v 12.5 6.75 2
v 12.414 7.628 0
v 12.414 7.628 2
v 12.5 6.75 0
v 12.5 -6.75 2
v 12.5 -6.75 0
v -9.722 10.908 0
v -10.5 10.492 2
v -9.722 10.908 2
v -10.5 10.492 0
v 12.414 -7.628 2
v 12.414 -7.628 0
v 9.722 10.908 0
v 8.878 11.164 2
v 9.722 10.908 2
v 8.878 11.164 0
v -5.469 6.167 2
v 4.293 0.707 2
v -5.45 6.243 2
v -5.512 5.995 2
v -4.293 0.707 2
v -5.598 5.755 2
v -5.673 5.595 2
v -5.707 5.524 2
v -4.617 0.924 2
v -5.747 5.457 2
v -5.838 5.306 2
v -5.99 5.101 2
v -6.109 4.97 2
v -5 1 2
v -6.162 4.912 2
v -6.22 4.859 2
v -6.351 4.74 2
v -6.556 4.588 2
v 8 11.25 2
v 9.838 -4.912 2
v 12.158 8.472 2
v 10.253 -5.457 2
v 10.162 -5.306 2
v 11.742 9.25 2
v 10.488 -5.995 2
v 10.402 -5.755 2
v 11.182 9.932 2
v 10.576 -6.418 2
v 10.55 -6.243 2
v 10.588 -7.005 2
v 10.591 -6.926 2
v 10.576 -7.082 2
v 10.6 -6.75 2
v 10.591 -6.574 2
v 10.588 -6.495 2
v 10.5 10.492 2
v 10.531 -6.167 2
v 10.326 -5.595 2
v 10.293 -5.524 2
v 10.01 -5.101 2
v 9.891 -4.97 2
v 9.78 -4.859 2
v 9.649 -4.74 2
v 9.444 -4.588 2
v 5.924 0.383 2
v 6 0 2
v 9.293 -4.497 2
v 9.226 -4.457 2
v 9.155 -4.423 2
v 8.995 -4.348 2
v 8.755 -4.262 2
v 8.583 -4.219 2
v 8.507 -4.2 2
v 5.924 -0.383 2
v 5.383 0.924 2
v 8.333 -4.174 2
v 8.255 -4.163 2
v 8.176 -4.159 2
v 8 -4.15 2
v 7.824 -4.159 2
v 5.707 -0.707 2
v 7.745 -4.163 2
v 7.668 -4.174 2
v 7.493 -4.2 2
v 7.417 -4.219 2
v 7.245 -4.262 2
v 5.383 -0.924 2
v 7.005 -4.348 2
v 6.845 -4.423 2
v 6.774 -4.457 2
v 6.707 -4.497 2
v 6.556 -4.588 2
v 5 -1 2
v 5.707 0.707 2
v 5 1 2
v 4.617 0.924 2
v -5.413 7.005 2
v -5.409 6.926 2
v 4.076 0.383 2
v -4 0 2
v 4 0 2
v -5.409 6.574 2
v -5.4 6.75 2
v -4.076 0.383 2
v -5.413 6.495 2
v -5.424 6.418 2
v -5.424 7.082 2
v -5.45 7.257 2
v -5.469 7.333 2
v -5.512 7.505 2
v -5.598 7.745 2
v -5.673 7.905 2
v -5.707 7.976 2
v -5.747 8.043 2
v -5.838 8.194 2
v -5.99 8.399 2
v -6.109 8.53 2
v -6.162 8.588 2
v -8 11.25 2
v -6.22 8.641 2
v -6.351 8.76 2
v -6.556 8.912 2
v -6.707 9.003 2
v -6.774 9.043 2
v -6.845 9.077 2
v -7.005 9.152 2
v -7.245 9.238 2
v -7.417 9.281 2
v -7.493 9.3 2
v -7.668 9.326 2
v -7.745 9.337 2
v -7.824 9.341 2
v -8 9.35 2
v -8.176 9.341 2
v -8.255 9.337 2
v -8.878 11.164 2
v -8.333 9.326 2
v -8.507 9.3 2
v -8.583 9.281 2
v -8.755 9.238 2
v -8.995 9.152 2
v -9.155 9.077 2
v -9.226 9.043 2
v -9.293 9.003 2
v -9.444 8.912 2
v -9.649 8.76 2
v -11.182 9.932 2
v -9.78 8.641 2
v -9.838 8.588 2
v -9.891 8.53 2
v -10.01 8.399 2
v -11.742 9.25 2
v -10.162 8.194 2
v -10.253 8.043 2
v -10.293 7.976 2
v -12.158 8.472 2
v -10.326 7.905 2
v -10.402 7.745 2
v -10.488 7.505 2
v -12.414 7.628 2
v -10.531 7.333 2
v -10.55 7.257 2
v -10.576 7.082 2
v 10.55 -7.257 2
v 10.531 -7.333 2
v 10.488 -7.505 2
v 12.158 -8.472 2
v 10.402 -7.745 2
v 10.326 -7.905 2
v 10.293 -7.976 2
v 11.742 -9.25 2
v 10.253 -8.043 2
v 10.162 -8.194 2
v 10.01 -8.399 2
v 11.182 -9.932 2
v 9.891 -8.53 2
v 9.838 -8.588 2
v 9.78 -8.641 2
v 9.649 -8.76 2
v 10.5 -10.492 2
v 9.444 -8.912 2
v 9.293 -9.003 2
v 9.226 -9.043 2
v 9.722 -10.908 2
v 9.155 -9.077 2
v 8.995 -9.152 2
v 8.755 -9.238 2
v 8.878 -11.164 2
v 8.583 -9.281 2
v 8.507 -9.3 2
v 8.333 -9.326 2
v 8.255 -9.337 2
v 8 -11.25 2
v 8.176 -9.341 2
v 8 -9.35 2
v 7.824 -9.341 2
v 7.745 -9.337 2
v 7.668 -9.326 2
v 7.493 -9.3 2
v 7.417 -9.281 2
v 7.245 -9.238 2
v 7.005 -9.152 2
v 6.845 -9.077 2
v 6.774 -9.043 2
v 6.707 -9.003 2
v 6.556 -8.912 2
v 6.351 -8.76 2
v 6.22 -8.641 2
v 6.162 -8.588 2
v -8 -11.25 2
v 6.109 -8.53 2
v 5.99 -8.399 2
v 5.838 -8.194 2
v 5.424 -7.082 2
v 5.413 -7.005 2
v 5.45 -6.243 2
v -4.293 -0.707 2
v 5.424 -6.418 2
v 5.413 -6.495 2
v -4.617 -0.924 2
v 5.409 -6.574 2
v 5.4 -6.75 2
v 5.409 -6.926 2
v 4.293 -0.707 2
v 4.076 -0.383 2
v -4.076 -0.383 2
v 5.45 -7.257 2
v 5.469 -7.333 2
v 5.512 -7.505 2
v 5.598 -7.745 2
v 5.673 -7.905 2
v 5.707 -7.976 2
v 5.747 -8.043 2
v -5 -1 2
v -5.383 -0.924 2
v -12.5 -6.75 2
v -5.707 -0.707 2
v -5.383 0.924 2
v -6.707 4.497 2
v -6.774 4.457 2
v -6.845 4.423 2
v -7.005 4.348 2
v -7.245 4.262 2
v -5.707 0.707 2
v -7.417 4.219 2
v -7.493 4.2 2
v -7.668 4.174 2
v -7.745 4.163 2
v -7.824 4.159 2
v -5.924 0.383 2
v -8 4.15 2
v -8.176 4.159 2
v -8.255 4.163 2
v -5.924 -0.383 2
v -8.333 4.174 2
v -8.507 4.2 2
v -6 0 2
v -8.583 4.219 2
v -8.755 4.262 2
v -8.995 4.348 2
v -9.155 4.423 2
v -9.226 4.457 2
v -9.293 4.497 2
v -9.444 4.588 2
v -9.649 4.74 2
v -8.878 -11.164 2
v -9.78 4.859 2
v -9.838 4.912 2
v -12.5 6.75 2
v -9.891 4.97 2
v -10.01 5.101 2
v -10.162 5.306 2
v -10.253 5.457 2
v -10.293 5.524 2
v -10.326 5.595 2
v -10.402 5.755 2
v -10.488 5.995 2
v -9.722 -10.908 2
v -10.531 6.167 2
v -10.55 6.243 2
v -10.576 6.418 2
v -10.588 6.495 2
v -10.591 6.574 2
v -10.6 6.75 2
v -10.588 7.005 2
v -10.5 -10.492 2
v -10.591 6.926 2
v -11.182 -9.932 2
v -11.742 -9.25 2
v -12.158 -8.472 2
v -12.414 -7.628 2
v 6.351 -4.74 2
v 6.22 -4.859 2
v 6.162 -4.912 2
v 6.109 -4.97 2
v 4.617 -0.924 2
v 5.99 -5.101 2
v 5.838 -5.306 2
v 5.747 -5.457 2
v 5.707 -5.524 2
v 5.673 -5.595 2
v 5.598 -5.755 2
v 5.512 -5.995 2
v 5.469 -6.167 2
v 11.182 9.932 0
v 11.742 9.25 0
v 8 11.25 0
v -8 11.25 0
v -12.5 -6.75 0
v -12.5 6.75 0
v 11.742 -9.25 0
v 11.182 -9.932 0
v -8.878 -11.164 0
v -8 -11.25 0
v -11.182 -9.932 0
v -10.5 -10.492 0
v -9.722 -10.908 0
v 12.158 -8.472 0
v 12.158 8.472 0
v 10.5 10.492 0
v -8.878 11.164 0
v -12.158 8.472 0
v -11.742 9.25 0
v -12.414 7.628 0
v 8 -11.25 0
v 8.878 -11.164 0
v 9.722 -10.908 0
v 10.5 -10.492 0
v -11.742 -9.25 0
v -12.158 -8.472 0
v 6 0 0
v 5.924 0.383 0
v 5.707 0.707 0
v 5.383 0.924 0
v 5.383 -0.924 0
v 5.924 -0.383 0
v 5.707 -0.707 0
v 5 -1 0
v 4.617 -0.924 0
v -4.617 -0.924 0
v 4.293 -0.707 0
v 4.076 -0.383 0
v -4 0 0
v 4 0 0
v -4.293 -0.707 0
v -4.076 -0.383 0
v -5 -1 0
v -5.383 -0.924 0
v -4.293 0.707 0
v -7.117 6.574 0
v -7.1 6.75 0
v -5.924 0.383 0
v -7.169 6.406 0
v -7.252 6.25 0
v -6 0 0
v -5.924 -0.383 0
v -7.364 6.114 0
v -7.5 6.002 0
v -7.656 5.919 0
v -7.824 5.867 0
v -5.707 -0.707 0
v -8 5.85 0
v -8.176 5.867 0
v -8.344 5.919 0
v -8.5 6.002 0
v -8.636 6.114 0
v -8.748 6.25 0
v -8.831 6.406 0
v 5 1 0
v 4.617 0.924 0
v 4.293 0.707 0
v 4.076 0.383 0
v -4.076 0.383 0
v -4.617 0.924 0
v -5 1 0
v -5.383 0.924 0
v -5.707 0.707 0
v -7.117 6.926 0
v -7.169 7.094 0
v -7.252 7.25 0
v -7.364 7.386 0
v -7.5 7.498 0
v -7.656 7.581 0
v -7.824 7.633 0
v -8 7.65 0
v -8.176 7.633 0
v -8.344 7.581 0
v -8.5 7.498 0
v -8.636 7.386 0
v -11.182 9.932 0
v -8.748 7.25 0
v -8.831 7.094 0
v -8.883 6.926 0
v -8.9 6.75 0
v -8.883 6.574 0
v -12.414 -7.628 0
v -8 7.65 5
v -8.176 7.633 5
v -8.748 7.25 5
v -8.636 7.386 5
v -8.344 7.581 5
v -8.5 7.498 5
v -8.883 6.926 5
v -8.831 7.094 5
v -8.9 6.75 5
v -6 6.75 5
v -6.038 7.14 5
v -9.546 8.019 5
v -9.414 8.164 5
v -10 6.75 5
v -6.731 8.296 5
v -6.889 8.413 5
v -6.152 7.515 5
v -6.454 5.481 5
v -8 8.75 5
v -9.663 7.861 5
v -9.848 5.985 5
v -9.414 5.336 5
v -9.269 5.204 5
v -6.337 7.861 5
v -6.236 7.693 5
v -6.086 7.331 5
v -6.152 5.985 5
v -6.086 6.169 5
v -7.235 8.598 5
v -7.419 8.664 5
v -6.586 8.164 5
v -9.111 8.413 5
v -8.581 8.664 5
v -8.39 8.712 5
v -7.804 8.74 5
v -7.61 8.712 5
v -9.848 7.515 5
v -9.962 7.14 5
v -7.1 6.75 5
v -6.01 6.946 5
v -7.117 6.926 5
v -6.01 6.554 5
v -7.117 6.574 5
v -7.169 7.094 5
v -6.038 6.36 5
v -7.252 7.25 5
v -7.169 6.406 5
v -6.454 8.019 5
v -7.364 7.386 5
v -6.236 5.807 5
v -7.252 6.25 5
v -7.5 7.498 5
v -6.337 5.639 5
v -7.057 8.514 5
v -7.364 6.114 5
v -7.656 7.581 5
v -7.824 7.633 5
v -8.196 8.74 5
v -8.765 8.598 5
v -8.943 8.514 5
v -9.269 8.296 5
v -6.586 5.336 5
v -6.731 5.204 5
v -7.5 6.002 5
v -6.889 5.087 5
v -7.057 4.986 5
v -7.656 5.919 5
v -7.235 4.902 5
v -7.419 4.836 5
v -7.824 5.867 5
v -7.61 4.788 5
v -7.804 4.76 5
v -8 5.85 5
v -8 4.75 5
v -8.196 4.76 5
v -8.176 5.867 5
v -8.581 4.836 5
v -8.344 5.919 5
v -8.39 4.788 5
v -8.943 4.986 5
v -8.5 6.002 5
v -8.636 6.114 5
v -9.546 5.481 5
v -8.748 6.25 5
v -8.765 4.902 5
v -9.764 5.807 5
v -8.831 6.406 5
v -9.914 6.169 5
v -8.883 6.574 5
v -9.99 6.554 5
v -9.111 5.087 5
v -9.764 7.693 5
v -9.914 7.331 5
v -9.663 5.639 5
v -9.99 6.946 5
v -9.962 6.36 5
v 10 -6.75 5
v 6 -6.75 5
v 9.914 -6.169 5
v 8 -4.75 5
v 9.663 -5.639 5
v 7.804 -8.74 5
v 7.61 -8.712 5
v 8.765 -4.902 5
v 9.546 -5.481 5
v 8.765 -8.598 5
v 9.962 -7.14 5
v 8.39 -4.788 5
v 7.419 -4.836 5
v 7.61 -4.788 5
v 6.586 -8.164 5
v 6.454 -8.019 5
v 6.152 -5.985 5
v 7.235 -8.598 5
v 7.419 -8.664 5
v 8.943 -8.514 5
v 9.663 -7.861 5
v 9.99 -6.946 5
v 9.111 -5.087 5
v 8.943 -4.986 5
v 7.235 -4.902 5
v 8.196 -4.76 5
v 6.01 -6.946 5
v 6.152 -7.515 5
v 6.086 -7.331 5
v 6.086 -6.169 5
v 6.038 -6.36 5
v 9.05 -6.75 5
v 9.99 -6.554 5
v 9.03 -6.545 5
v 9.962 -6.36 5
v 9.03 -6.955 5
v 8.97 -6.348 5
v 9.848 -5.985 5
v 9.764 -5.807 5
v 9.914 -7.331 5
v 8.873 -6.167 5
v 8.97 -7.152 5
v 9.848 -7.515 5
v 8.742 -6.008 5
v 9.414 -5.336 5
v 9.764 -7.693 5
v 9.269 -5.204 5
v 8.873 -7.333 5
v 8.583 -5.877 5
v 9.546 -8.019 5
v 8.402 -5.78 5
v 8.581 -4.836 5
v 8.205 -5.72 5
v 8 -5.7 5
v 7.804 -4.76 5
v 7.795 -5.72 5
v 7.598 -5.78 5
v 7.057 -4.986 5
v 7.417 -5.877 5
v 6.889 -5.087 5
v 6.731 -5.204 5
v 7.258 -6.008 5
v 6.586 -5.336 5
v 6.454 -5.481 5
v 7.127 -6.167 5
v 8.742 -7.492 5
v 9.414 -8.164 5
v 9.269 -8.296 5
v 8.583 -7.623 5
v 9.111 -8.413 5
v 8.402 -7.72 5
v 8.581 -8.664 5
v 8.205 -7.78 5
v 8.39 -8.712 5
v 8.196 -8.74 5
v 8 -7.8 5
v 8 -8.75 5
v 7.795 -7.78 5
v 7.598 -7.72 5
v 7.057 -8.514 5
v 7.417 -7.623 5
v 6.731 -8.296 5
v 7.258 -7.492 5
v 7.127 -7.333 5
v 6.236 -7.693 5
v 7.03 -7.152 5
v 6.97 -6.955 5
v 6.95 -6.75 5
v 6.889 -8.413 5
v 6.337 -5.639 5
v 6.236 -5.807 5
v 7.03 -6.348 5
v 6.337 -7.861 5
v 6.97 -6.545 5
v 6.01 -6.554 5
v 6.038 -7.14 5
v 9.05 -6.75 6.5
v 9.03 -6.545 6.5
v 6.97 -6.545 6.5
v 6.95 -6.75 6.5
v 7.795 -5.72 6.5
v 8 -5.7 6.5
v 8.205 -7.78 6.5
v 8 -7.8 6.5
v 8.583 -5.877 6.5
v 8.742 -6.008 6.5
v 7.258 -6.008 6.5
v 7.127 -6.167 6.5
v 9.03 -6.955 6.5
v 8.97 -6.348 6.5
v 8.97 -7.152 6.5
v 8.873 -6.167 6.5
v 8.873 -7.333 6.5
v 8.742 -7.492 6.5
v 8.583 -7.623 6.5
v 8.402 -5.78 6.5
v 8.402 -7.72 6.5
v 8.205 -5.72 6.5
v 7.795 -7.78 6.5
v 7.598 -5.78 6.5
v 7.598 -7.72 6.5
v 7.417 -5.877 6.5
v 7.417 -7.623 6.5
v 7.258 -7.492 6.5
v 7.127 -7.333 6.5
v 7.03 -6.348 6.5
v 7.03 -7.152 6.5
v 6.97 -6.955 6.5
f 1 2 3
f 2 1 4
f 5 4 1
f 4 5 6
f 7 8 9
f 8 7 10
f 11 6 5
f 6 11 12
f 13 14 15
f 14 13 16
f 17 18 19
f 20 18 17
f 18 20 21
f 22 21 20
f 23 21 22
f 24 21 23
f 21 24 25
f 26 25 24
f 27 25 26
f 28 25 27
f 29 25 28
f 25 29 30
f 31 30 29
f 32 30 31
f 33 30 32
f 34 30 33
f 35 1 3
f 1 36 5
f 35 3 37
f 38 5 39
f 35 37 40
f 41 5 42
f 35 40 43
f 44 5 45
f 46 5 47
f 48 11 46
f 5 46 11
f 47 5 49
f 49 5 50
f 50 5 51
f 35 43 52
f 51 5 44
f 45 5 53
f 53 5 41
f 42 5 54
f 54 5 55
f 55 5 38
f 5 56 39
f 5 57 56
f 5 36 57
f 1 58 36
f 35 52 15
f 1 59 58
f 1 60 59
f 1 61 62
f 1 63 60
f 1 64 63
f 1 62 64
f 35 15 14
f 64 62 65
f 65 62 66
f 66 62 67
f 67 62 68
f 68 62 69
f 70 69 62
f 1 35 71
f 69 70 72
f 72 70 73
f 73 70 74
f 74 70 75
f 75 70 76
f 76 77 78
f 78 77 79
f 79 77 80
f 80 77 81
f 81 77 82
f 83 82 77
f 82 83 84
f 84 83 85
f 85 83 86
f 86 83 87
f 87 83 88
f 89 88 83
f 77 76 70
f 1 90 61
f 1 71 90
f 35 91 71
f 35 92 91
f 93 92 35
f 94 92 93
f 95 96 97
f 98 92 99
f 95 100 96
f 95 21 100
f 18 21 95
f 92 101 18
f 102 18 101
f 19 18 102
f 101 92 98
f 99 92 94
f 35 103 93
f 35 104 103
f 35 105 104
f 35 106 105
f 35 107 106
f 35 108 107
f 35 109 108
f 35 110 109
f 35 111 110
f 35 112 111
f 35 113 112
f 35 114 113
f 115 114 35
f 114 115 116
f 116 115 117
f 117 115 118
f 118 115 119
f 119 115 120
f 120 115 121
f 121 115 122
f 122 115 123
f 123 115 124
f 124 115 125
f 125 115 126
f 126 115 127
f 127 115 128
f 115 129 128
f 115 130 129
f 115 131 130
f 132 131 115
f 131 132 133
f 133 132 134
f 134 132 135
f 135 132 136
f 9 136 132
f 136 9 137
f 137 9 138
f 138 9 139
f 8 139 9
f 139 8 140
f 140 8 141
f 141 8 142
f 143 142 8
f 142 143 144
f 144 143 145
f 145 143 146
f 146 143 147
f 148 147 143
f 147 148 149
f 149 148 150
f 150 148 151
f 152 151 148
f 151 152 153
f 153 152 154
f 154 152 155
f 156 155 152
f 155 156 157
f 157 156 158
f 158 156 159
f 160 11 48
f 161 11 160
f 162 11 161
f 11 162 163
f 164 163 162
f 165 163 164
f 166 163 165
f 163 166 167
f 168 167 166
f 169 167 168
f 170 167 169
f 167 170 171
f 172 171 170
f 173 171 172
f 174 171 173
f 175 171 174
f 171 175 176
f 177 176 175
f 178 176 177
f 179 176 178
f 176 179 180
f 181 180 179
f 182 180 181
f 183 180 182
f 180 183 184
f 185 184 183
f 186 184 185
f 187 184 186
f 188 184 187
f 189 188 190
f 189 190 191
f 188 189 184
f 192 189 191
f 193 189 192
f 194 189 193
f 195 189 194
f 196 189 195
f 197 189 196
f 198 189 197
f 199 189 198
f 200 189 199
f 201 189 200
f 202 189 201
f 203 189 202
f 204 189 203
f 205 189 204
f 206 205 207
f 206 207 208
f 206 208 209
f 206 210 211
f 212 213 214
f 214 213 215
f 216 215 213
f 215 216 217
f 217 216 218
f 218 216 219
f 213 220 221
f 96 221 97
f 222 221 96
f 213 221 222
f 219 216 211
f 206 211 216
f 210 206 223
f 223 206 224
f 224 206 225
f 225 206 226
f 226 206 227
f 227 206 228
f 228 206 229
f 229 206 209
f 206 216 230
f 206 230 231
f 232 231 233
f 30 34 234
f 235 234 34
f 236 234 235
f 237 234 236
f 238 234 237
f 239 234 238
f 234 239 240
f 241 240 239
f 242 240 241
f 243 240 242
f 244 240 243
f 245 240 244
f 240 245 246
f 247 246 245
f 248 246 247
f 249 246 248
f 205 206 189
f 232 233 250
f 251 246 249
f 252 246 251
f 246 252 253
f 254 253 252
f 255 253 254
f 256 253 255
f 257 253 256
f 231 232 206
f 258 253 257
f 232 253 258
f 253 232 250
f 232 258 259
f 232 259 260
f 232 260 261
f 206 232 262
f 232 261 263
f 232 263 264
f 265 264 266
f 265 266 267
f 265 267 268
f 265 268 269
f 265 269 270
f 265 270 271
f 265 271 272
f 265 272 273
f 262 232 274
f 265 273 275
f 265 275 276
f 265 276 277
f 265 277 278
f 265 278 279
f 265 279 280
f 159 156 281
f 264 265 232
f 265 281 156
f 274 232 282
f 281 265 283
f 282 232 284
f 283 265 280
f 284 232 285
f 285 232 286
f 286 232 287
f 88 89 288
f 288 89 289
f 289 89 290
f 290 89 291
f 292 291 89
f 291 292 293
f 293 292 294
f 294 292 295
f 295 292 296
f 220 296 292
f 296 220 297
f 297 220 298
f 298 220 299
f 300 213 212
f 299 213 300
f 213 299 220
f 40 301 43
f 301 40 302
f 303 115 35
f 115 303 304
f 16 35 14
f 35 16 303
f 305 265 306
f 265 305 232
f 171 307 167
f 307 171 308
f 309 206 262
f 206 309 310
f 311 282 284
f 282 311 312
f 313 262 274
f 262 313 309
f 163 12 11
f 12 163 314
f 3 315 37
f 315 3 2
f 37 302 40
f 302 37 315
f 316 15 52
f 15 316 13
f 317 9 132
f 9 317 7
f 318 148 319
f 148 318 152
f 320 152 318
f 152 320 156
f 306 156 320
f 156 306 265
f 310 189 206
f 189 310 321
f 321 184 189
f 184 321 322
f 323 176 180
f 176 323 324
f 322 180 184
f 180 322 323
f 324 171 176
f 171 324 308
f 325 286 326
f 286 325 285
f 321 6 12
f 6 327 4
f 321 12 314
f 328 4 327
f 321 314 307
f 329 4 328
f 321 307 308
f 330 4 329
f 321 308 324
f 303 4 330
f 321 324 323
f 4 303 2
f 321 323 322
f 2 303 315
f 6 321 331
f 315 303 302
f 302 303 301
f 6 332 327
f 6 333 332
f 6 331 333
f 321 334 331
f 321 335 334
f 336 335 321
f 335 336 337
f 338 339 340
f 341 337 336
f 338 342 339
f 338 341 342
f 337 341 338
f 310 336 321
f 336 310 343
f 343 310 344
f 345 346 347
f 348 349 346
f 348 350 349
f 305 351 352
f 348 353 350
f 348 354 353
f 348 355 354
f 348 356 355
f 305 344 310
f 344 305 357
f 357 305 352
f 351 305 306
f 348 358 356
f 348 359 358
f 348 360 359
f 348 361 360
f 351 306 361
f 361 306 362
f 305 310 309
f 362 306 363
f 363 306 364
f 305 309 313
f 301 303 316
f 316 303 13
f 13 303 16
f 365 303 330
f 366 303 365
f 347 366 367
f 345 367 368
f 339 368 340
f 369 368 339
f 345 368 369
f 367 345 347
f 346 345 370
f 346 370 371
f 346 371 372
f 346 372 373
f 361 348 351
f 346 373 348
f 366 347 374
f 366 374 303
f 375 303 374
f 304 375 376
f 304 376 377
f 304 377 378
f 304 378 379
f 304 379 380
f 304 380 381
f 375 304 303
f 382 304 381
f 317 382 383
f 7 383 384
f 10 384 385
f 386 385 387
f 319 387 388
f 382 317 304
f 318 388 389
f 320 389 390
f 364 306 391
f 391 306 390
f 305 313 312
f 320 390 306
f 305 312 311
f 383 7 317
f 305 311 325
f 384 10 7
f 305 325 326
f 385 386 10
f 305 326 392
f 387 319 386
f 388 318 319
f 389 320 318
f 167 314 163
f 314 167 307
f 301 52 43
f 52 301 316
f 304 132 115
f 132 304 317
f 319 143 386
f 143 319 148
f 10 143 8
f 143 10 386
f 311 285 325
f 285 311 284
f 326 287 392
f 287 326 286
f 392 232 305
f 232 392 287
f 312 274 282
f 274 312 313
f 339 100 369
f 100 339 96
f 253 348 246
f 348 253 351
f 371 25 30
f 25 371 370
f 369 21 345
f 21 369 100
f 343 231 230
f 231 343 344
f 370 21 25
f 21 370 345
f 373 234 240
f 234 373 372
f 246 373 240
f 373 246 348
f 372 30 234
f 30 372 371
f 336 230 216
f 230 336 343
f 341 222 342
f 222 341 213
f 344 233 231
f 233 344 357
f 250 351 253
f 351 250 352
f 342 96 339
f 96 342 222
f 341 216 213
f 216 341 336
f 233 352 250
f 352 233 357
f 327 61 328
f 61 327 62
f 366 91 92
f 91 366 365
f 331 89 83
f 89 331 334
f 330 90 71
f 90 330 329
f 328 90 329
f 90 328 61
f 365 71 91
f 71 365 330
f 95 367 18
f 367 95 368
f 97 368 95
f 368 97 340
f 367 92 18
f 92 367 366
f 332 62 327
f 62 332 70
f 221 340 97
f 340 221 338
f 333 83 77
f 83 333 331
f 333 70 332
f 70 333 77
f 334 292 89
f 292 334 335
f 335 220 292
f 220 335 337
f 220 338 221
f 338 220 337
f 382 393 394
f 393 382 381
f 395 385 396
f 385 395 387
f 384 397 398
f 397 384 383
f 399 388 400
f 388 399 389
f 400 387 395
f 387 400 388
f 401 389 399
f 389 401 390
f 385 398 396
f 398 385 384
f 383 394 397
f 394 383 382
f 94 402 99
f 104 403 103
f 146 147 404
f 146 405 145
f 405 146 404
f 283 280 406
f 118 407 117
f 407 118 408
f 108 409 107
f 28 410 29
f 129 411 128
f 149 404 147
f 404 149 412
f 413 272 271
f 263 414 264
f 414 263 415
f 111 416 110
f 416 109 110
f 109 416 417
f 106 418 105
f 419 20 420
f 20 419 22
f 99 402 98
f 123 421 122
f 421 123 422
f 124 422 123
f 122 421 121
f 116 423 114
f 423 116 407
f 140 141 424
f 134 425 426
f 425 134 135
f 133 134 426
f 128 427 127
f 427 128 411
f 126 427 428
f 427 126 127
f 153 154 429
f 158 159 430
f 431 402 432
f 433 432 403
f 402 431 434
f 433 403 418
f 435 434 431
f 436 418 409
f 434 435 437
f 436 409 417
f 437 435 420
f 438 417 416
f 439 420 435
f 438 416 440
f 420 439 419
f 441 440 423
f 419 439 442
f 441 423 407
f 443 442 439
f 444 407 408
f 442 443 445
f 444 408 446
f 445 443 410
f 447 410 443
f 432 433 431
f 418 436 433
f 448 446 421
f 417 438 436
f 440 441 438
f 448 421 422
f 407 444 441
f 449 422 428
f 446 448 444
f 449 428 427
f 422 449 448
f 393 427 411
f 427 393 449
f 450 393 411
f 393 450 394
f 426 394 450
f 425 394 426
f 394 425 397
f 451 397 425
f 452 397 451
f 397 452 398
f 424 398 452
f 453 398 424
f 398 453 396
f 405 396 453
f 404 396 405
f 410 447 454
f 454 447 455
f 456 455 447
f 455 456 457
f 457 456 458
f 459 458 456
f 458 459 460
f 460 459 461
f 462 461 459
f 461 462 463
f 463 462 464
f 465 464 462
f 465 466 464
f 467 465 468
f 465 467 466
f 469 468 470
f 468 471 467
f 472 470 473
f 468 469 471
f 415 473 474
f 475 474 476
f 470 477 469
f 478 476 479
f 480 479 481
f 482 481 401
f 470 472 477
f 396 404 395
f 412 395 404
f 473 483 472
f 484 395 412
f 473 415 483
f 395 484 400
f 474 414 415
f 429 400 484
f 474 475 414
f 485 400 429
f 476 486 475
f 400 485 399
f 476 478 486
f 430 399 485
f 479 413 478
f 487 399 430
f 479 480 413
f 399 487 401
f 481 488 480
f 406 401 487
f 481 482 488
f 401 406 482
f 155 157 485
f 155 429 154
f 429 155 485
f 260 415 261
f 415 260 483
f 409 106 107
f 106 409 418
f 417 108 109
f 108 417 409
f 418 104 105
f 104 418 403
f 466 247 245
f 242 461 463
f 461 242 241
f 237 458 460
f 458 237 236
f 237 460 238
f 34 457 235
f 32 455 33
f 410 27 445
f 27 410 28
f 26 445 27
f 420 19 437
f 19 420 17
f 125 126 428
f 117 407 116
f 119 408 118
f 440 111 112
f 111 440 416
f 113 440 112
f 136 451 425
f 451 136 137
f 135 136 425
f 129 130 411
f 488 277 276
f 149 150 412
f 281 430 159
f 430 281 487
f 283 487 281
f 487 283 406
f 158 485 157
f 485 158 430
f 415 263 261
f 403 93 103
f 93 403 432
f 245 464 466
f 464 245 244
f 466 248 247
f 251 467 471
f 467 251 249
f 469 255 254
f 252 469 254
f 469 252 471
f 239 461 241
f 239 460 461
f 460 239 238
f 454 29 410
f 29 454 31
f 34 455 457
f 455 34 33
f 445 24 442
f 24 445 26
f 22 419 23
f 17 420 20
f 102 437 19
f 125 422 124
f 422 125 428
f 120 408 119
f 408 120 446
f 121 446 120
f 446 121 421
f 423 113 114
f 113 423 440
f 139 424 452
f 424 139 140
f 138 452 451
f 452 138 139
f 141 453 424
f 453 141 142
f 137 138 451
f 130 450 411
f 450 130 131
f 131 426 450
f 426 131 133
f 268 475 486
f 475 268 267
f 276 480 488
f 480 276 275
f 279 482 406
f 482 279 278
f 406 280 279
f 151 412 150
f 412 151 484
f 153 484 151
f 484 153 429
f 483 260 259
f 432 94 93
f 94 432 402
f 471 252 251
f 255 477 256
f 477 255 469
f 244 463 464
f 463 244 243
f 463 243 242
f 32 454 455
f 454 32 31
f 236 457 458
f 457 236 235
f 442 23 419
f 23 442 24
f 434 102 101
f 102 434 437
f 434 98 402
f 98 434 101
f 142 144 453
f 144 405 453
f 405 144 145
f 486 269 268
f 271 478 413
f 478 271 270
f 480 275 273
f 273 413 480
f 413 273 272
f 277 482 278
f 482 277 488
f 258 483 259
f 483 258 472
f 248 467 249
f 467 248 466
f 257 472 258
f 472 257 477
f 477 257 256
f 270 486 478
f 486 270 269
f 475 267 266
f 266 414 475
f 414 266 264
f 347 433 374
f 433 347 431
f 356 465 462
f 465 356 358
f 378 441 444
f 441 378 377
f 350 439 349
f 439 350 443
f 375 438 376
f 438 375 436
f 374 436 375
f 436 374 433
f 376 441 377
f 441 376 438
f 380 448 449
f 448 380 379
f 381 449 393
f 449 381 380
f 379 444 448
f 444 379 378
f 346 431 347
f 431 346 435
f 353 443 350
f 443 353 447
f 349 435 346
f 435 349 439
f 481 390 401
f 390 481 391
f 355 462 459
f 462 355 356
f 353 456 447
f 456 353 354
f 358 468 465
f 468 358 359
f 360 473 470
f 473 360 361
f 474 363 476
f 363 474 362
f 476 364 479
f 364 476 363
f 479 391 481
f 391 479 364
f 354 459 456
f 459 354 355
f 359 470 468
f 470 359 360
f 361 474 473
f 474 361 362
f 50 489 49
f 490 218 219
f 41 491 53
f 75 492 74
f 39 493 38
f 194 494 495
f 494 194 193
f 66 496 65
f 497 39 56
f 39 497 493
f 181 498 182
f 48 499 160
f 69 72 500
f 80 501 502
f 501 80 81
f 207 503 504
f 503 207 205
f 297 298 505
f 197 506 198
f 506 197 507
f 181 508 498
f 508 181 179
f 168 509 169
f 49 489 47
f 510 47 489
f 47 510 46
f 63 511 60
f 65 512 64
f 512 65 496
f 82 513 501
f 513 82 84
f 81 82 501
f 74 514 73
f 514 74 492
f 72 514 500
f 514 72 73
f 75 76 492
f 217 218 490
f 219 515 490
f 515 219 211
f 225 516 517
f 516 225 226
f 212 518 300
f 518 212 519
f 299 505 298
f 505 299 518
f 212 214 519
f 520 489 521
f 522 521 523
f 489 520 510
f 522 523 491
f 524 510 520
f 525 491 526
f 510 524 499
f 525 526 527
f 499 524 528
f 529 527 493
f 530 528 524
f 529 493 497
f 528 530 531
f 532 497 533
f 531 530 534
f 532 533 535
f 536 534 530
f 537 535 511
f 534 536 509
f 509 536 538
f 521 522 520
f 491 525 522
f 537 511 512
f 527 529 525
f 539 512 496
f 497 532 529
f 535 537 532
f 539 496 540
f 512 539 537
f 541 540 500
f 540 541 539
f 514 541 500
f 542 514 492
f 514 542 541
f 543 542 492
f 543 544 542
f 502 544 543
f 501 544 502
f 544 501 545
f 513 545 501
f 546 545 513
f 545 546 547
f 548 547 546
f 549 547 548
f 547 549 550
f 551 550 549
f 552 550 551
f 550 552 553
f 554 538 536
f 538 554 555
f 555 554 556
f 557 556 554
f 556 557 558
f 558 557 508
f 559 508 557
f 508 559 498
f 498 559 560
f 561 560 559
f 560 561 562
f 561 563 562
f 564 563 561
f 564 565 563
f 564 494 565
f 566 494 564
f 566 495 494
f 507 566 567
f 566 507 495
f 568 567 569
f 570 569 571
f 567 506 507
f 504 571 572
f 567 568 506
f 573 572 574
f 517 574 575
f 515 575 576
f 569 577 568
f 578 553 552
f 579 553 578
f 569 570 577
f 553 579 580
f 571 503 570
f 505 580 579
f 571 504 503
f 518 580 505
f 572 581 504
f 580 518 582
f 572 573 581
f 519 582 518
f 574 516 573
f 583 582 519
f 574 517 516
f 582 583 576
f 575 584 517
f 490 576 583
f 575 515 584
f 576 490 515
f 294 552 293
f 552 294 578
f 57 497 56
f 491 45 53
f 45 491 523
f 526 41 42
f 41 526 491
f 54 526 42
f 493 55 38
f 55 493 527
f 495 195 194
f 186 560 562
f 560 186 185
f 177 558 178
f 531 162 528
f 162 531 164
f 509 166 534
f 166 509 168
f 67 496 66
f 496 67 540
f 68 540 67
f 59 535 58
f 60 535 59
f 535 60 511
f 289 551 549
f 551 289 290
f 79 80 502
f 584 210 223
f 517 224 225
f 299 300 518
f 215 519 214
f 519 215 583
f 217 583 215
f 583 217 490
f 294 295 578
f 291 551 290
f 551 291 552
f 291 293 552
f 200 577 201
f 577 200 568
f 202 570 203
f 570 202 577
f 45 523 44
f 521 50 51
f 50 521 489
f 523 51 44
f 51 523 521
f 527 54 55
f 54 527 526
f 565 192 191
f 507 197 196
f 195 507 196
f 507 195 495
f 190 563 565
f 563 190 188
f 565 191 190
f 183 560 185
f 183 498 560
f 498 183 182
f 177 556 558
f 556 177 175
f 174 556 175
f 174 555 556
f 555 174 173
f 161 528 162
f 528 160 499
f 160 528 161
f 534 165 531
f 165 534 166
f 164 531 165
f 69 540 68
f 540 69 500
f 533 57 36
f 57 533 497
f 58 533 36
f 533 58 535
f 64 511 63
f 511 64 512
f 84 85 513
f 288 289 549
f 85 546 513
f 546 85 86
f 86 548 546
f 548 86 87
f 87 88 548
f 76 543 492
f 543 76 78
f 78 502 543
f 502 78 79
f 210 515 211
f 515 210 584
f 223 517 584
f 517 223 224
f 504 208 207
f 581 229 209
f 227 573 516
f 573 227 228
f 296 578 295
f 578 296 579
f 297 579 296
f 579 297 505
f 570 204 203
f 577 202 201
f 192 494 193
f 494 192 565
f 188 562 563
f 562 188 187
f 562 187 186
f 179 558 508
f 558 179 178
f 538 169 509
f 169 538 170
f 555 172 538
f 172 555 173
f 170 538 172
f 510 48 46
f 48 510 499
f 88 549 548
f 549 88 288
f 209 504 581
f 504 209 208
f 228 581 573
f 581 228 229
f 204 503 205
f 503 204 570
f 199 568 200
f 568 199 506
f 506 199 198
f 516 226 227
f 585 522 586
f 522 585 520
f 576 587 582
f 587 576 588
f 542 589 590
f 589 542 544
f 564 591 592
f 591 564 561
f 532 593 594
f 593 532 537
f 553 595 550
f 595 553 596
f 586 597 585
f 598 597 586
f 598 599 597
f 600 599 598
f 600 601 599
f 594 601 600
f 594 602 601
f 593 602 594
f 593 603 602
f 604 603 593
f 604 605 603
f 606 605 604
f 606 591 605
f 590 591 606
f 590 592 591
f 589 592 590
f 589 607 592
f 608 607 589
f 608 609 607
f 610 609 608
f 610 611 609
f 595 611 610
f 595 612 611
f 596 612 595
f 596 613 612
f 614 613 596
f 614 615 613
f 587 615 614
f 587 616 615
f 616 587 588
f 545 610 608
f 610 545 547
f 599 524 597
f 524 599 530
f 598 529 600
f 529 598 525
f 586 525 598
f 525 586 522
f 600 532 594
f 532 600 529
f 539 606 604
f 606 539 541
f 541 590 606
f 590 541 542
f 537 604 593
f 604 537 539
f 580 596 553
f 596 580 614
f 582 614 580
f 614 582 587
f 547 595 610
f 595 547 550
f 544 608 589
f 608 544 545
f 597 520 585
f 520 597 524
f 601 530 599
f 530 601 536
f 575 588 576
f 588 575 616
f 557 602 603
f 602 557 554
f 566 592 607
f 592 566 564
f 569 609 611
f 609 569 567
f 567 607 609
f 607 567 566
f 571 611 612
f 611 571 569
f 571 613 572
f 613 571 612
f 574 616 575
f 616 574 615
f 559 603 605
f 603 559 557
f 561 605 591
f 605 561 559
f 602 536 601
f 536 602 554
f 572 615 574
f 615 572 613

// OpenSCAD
L1=16;
W1=13.5;

difference() {
minkowski() {
translate([-L1/2,-W1/2])
cube([L1,W1,2]);
cylinder(d=9,h=0.0001,$fn=32);

}

translate([-5,0,0])
cylinder(d=2,h=4,$fn=16);

translate([5,0,0])
cylinder(d=2,h=4,$fn=16);

translate([-L1/2,W1/2,0])
standoffh();
}

translate([-L1/2,W1/2,0])
standoff();
translate([L1/2,-W1/2,0])
standoff2();

module standoff() {
    difference() {
        cylinder(d1=6,d2=4,h=5,$fn=64);
        cylinder(d=1.8,h=6,$fn=32);
    }
}

module standoff2() {
        cylinder(d1=6,d2=4,h=5,$fn=64);
        cylinder(d=2.1,h=6.5,$fn=32);
}

module standoffh() {

        cylinder(d=1.8,h=6,$fn=32);
}
